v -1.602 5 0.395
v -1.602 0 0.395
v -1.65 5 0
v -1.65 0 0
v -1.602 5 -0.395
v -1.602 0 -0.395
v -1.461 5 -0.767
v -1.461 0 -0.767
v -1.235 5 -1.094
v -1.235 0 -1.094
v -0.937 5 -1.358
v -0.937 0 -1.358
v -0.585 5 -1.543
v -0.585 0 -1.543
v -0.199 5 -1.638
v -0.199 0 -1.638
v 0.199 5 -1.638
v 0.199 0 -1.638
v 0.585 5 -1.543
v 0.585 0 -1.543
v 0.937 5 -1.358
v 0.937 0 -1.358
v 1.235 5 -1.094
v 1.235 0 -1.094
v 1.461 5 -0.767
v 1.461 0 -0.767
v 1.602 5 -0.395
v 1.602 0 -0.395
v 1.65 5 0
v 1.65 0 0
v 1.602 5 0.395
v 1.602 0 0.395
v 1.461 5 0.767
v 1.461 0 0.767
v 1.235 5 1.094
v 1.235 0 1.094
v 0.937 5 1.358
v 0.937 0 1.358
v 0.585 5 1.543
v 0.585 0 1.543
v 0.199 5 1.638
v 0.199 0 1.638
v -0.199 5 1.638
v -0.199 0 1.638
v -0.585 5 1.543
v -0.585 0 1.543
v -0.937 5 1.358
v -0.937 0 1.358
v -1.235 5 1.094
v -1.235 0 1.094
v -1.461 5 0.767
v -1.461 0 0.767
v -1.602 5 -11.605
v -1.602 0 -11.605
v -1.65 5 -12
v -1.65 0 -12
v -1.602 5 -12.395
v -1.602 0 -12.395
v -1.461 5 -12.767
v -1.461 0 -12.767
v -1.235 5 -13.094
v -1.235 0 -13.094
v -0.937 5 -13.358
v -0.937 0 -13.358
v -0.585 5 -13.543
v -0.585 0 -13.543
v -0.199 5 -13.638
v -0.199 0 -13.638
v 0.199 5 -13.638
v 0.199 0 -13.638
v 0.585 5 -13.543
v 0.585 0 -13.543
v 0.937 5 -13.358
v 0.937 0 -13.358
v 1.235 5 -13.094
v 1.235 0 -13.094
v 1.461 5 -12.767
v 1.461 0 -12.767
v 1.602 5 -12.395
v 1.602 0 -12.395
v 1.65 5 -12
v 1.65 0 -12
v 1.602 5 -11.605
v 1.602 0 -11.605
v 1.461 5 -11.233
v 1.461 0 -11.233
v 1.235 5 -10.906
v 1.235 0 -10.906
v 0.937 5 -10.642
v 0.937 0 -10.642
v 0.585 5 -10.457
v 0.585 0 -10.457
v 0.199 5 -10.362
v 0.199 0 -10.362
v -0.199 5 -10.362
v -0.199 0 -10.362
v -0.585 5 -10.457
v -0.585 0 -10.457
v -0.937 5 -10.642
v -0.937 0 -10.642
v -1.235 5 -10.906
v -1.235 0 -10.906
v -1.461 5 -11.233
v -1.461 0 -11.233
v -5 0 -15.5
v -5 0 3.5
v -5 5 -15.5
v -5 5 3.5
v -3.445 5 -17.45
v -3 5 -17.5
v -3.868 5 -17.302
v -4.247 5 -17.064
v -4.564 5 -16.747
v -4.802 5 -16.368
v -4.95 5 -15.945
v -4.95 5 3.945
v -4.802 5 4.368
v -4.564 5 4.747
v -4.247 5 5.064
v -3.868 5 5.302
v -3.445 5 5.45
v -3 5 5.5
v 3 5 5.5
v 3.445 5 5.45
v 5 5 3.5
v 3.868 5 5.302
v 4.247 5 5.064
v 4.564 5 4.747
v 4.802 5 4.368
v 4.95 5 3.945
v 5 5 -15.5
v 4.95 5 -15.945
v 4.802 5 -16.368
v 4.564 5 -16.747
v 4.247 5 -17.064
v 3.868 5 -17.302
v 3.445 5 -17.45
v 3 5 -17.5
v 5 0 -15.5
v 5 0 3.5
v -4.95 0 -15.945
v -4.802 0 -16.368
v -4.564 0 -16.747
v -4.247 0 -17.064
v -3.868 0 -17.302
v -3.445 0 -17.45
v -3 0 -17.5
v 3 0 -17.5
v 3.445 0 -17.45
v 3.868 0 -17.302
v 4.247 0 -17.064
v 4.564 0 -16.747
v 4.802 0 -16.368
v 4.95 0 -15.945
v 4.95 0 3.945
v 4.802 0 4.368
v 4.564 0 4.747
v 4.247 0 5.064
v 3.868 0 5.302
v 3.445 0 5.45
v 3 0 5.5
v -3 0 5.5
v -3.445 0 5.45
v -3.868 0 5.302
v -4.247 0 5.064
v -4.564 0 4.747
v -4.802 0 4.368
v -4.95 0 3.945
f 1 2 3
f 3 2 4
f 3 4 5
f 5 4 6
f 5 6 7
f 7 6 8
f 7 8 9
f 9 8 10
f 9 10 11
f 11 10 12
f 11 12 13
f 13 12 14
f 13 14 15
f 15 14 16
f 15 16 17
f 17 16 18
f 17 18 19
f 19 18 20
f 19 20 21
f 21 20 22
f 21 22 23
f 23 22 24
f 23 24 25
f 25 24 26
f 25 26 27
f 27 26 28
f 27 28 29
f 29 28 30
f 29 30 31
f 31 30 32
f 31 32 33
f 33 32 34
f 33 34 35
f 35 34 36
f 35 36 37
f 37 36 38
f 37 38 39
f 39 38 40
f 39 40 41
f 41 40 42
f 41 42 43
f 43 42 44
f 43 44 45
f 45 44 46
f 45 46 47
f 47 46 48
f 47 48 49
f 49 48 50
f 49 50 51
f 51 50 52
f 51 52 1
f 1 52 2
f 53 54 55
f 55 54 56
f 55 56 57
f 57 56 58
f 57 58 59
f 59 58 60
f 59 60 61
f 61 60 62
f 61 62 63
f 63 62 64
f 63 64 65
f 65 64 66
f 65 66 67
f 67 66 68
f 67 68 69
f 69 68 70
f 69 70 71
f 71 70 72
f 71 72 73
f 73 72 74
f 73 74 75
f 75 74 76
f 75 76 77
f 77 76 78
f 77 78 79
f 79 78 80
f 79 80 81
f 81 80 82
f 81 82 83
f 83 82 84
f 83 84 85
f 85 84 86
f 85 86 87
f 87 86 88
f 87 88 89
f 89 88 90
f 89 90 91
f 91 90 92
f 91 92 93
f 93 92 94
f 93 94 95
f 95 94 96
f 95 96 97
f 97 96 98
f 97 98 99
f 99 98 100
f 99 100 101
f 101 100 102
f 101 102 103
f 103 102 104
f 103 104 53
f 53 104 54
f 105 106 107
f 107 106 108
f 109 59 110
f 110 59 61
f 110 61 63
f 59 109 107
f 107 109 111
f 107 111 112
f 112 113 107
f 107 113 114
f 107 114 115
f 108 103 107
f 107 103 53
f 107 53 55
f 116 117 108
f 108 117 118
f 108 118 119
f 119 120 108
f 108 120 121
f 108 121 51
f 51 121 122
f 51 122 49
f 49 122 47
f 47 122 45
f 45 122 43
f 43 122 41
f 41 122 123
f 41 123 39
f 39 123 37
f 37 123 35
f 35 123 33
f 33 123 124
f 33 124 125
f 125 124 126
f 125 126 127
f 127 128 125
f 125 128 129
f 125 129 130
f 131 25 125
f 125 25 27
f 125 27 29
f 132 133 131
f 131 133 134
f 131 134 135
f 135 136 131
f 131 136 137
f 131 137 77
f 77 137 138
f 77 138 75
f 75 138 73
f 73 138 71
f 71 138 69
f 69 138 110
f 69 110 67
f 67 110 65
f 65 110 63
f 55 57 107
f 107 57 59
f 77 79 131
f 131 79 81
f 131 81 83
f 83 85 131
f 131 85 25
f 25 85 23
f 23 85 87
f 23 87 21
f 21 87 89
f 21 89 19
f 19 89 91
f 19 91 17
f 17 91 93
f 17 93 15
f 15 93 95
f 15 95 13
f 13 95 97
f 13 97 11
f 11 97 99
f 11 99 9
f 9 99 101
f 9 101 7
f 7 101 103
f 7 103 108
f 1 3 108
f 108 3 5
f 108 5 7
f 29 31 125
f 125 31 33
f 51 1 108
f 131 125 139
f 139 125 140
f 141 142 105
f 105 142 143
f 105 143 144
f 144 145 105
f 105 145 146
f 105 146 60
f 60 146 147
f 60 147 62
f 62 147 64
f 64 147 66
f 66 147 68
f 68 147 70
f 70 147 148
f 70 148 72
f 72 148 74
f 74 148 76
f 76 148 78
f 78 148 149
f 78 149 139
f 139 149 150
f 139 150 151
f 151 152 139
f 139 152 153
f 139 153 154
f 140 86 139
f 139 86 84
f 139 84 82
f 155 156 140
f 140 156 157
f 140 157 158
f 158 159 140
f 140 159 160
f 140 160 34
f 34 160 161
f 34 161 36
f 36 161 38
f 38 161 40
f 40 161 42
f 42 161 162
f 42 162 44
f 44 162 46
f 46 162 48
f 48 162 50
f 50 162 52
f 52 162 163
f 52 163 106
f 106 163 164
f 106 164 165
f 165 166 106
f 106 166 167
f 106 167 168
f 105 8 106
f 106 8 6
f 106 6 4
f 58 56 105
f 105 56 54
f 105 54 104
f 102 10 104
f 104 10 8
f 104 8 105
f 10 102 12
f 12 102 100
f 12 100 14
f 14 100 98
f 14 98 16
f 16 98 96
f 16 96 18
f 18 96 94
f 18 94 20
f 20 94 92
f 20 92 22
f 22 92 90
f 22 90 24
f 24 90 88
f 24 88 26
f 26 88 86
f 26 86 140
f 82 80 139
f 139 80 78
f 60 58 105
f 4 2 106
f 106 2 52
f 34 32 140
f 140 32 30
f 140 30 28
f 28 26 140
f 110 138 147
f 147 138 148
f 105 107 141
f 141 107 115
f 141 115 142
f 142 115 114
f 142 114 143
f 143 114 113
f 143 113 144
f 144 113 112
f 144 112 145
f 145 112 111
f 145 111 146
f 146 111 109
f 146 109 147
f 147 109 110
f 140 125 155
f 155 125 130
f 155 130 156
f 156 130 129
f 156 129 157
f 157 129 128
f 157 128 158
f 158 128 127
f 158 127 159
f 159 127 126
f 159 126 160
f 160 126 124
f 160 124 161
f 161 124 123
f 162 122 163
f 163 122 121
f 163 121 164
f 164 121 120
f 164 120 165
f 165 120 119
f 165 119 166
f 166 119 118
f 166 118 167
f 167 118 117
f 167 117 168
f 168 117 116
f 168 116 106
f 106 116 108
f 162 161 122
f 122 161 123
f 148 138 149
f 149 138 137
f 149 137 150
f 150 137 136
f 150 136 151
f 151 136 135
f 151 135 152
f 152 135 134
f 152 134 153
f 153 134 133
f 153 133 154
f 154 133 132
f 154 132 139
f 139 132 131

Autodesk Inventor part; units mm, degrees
ref_plane "YZ Plane" through (0, 0, 0) normal (1, 0, 0) x (0, 1, 0)
ref_plane "XZ Plane" through (0, 0, 0) normal (0, 1, 0) x (-1, 0, 0)
ref_plane "XY Plane" through (0, 0, 0) normal (0, 0, 1) x (1, 0, 0)
sketch "Sketch1" plane through (0, 0, 0) normal (0, 1, 0) x (-1, 0, 0)
  circle A0 centre (0, 0) radius 1.65
  circle A1 centre (0, -12) radius 1.65
  line L0 (-5, 5.5) -> (5, 5.5)
  line L1 (5, 5.5) -> (5, -17.5)
  line L2 (5, -17.5) -> (-5, -17.5)
  line L3 (-5, -17.5) -> (-5, 5.5)
  dimension "d0" = 3.3
  dimension "d1" = 3.3
  dimension "d2" = 12
  dimension "d3" = 0
  dimension "d4" = 10
  dimension "d5" = 5
  dimension "d6" = 5.5
  dimension "d7" = 5.5
extrude "Extrusion1" add sketch "Sketch1" along normal blind 5
fillet "Fillet1" radius 2 4 edges at (5, 2.5, 5.5) (-5, 2.5, 5.5) (5, 2.5, -17.5) (-5, 2.5, -17.5)
properties part number "BeltClip"
